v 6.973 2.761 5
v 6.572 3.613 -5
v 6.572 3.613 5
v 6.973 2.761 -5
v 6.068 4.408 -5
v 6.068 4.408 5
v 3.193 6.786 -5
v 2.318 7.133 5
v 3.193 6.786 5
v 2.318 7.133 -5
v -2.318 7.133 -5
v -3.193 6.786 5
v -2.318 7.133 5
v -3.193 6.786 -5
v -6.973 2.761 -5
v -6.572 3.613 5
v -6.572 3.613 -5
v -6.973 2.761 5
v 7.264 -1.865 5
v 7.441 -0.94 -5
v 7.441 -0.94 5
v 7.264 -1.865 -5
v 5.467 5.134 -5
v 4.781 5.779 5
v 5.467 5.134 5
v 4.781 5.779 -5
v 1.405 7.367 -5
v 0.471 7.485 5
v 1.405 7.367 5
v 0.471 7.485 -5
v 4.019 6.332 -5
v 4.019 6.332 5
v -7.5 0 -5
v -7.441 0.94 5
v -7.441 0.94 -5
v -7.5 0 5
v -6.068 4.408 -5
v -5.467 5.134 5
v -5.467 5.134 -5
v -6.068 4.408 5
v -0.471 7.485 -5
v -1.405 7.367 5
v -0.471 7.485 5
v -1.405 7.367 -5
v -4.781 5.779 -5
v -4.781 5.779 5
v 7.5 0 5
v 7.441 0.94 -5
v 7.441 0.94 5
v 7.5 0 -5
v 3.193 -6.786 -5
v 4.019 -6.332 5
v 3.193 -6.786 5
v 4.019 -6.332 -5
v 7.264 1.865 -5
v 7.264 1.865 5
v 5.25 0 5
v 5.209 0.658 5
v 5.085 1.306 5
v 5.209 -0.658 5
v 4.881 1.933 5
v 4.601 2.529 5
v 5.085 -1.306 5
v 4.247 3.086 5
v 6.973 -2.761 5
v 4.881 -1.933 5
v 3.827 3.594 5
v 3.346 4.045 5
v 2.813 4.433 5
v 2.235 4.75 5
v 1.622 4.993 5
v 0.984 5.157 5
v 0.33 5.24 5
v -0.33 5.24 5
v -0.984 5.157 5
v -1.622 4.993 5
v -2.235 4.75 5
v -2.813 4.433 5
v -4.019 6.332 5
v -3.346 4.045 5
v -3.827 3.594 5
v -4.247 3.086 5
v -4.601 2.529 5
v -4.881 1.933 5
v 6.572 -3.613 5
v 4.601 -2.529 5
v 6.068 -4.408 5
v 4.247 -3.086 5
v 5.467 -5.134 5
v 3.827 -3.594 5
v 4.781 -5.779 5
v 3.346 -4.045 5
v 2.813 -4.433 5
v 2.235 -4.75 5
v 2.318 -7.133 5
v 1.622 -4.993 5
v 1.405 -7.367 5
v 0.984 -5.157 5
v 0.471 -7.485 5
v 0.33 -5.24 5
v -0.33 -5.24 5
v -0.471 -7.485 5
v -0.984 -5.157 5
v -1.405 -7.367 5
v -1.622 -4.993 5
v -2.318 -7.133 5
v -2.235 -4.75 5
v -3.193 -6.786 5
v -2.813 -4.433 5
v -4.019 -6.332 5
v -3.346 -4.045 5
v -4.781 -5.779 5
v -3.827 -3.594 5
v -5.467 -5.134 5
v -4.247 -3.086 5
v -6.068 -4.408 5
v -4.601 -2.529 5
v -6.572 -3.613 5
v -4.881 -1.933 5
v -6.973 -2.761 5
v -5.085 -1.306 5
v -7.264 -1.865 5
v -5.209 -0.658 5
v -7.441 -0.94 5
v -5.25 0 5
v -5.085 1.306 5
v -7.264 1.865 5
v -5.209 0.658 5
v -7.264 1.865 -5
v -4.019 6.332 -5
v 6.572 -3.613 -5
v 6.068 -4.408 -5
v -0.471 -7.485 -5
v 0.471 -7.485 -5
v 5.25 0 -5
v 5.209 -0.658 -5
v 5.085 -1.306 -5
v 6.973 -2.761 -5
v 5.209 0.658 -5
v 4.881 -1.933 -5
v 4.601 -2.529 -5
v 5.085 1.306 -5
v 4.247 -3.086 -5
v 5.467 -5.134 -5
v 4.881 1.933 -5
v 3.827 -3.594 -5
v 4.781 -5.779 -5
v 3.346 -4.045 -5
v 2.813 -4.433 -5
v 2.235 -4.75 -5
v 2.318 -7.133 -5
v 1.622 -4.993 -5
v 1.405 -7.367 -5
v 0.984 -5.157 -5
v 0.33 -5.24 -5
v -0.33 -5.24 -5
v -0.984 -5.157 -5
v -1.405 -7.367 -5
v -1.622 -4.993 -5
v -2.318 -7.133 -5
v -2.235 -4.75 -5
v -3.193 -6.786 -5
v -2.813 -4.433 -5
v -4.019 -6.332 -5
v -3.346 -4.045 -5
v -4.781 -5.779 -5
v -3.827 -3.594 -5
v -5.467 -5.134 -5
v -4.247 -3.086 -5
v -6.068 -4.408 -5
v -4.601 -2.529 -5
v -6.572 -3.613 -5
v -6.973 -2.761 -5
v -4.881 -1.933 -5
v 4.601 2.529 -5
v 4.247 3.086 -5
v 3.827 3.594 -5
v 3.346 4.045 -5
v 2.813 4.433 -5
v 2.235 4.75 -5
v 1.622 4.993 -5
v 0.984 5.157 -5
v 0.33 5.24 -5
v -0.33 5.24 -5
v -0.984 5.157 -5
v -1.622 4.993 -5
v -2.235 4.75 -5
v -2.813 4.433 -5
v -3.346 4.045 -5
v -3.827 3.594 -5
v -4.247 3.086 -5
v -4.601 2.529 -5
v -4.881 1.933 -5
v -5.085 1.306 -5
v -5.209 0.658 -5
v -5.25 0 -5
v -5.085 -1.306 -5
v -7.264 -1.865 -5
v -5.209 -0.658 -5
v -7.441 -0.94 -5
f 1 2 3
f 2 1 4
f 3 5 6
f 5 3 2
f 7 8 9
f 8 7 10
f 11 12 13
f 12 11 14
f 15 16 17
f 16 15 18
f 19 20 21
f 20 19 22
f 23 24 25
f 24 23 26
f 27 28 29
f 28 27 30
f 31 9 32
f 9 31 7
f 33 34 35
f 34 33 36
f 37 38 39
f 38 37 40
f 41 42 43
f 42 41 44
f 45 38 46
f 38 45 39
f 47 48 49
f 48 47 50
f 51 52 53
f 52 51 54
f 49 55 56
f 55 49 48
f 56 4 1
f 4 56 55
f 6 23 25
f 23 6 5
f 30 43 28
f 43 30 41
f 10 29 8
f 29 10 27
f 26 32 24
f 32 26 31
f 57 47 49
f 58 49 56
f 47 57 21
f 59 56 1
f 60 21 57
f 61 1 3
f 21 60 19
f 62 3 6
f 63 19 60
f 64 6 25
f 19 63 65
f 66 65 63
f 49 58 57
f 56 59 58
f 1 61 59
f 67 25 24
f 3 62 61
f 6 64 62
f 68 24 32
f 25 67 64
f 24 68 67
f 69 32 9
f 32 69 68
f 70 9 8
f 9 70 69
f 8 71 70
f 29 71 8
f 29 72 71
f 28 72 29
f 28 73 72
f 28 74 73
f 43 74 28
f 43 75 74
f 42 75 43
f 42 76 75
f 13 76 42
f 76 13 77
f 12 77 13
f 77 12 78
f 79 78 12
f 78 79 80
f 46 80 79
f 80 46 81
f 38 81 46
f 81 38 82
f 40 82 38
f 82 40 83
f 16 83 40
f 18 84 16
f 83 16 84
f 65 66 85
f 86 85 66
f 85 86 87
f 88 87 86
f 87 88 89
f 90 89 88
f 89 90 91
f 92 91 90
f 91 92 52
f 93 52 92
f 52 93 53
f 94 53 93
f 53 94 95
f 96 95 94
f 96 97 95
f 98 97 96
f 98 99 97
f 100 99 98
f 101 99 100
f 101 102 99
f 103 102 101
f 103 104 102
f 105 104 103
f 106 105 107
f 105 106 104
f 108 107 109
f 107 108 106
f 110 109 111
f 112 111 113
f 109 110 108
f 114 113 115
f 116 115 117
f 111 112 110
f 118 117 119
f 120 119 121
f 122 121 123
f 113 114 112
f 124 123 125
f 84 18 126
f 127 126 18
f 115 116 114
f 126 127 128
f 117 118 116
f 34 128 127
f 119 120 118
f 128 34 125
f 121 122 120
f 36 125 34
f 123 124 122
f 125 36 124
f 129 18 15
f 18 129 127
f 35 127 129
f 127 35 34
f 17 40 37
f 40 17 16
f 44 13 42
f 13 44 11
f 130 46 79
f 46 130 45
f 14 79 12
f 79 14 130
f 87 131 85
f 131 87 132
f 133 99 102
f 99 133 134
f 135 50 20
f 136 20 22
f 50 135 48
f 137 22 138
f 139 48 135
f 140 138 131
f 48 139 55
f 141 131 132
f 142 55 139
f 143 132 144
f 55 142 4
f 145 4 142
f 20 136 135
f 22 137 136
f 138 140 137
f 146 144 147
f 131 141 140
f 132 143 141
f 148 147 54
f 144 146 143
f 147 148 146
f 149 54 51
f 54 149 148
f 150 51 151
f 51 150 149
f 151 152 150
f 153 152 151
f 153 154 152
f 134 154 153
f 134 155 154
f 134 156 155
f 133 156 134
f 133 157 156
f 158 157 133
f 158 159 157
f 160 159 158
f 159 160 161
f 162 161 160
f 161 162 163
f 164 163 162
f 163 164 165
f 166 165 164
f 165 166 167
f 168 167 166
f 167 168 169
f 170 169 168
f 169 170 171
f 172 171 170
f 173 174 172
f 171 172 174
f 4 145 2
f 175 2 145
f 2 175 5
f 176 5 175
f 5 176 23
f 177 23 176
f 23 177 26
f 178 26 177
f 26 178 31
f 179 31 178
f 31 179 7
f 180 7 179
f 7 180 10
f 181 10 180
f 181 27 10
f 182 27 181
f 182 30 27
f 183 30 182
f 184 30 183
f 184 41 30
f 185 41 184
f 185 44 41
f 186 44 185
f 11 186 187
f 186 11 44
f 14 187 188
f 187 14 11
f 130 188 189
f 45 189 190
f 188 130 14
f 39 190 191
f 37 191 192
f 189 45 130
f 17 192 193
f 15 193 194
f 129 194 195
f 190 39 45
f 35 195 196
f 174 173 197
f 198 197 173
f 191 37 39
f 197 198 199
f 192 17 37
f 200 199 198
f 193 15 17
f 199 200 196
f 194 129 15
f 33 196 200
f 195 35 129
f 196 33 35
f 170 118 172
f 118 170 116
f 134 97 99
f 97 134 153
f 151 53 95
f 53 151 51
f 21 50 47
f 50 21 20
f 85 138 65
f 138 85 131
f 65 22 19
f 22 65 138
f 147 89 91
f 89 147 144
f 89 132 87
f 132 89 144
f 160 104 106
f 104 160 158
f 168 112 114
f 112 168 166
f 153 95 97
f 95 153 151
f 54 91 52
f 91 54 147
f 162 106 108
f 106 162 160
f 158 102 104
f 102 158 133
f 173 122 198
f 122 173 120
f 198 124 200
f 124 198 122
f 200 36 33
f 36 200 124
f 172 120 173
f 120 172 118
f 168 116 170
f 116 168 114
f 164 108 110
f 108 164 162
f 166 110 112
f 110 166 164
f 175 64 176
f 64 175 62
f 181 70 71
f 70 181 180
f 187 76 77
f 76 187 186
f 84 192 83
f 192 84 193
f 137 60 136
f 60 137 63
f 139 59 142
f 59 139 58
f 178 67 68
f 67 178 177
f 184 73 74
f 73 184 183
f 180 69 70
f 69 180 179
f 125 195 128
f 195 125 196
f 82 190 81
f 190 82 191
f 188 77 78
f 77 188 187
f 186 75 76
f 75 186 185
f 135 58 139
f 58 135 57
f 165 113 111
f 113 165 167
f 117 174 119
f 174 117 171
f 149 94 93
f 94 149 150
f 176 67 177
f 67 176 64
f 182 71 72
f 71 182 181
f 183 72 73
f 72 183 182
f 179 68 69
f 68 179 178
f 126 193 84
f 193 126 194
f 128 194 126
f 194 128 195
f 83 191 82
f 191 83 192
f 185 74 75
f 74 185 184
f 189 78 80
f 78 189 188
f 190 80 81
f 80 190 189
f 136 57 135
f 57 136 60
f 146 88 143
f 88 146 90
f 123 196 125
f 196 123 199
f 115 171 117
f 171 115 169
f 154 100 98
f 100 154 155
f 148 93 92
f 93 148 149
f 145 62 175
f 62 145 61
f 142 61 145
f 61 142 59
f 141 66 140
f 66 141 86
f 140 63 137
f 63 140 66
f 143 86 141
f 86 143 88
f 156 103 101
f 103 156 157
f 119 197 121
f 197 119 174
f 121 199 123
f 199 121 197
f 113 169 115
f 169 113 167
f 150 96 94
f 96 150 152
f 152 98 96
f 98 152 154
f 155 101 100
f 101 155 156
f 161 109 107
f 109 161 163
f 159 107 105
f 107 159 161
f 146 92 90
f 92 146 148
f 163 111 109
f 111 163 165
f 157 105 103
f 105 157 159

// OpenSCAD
$fn = 50;


difference() {
	union() {
		translate(v = [0, 0, -5.0000000000]) {
			cylinder(h = 10, r = 7.5000000000);
		}
	}
	union() {
		translate(v = [0, 0, -100.0000000000]) {
			cylinder(h = 200, r = 5.2500000000);
		}
	}
}
